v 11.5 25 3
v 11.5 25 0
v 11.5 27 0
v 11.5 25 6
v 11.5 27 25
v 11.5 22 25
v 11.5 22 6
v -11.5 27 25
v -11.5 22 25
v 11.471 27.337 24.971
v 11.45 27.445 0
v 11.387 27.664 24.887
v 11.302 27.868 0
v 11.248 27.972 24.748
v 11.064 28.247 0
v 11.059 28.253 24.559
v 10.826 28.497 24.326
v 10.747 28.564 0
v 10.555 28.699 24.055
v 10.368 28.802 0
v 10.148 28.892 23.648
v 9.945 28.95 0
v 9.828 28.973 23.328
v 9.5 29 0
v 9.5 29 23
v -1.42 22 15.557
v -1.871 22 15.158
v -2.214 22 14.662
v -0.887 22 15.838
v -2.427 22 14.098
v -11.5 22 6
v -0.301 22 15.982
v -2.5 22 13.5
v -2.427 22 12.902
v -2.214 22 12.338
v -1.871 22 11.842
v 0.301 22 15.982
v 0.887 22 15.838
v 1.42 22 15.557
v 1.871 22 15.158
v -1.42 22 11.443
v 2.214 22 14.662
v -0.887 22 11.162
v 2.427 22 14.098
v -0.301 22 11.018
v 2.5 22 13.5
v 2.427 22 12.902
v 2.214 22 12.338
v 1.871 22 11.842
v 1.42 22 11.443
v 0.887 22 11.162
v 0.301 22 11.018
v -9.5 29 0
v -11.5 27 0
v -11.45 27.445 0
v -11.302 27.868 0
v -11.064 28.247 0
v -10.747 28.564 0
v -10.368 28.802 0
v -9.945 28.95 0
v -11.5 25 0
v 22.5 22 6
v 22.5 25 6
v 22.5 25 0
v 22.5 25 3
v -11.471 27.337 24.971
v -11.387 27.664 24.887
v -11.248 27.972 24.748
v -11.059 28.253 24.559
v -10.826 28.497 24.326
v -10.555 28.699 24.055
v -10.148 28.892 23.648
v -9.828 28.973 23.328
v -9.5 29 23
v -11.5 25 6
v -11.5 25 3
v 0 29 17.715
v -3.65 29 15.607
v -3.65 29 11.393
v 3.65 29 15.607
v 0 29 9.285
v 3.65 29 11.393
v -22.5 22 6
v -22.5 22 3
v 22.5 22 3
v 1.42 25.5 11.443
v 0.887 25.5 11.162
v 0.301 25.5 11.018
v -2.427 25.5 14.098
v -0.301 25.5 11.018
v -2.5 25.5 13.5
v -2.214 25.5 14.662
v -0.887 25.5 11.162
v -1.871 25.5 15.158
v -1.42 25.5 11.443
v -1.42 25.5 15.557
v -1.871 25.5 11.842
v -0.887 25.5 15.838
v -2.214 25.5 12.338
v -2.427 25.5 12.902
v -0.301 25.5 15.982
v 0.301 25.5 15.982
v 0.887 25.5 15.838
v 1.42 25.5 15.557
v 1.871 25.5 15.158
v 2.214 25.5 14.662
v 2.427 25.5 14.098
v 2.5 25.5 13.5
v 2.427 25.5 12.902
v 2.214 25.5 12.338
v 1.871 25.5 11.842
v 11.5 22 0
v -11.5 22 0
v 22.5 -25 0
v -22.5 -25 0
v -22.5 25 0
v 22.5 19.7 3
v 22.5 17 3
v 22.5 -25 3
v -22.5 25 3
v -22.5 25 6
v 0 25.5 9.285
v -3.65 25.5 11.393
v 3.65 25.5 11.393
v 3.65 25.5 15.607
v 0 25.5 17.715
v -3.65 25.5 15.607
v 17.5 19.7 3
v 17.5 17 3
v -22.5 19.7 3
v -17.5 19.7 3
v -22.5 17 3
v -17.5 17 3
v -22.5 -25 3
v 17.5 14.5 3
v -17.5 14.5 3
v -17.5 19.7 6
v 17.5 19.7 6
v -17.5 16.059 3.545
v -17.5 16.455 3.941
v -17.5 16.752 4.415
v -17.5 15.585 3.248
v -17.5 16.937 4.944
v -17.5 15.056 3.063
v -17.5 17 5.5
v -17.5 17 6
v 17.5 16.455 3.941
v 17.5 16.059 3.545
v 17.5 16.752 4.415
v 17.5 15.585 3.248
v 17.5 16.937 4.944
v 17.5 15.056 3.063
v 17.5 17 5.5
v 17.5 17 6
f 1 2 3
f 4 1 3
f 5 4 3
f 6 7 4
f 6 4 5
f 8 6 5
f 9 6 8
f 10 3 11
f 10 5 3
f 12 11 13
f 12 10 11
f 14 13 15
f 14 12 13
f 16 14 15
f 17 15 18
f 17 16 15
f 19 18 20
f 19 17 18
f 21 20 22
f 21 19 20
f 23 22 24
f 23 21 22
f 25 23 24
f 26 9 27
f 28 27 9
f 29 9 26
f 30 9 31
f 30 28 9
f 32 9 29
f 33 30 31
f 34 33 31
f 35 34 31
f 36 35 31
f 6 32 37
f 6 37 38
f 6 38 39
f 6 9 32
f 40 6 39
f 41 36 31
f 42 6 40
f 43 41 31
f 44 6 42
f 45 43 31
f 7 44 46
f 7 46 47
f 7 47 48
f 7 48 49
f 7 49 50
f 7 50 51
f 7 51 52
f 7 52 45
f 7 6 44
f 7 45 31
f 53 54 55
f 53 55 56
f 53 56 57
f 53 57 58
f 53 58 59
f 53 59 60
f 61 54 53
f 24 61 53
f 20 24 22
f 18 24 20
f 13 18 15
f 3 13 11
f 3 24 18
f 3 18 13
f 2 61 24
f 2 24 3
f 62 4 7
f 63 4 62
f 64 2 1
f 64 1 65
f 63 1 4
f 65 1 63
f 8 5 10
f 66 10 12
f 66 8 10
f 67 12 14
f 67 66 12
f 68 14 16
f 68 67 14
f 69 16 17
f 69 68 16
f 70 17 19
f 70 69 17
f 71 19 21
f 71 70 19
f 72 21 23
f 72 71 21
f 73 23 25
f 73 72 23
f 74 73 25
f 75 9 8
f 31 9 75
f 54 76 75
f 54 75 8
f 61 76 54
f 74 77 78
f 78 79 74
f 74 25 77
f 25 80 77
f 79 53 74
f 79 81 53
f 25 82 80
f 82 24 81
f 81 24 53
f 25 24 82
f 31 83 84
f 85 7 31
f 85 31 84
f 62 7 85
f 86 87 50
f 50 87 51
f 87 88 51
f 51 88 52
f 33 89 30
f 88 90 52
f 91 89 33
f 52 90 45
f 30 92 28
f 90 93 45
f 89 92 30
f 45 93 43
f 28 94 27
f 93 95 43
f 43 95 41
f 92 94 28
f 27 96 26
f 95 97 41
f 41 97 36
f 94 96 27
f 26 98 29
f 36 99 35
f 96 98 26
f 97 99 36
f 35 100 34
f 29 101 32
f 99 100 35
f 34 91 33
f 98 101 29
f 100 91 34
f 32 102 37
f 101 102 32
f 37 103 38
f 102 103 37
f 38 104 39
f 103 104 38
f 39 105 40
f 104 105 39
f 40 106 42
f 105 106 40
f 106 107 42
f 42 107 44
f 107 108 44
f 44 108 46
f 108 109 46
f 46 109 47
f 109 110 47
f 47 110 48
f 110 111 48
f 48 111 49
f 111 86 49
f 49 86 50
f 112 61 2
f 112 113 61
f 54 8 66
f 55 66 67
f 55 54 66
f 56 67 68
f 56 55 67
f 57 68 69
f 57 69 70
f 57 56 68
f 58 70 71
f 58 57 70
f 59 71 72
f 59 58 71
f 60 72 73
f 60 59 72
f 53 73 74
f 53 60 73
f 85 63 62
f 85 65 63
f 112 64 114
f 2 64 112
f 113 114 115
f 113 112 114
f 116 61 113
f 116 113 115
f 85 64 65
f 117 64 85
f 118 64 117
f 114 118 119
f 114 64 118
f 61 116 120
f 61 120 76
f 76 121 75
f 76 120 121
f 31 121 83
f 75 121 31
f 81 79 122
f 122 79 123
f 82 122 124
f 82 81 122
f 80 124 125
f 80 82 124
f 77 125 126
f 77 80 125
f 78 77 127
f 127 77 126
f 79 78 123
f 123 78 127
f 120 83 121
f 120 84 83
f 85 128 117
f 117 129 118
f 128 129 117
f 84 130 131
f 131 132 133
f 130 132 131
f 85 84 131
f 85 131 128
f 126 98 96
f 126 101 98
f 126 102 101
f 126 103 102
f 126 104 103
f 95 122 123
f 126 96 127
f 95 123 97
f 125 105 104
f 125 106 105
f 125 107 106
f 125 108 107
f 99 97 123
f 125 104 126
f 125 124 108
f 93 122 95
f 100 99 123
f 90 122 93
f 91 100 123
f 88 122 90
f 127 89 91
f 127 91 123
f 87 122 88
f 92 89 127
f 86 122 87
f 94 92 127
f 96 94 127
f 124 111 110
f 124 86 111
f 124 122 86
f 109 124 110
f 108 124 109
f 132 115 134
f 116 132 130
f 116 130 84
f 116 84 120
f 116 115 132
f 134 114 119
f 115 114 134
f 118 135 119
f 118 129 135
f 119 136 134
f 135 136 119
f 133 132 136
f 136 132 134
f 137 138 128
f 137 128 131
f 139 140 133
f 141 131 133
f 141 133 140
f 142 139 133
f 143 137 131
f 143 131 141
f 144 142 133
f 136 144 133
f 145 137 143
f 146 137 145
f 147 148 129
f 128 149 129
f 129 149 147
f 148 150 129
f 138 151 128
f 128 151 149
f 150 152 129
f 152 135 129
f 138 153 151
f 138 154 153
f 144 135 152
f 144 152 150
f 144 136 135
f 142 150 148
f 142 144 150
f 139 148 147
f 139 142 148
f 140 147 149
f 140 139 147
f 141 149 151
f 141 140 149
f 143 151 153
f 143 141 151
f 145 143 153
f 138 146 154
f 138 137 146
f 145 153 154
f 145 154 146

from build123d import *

# Parameters (mm, degrees)
SKETCH_W        = 45
SKETCH_H        = 50
PAD_DEPTH       = 3
SKETCH001_W     = 23
SKETCH001_H     = 25
PAD001_DEPTH    = 7
SKETCH002_W     = 45
SKETCH002_H     = 8
PAD002_DEPTH    = 3
POCKET_DEPTH    = 3
POCKET001_DEPTH = 3.5
SKETCH005_R     = 2.5
POCKET002_DEPTH = 50.501
FILLET_R        = 2.5
FILLET001_R     = 2


with BuildPart() as part:
    # Sketch → Pad (new body)
    with BuildSketch(Plane.XY):
        Rectangle(SKETCH_W, SKETCH_H)
    extrude(amount=PAD_DEPTH)

    # Sketch001 (on DatumPlane) → Pad001 (join)
    with BuildSketch(Plane(origin=(0, 22, 0), x_dir=(-1, 0, 0), z_dir=(0, 1, 0))):
        with Locations((0, 12.5)):
            Rectangle(SKETCH001_W, SKETCH001_H)
    extrude(amount=PAD001_DEPTH)

    # Sketch002 (on Face5 of Pad001) → Pad002 (join)
    with BuildSketch(Plane.XY.offset(3)):
        with Locations((0, 21)):
            Rectangle(SKETCH002_W, SKETCH002_H)
    extrude(amount=PAD002_DEPTH)

    # Sketch003 (on Face14 of Pad002) → Pocket (cut)
    with BuildSketch(Plane.XY.offset(6)):
        Polygon((-22.5, 22), (22.5, 22), (22.5, 19.7), (22.5, 17), (17.5, 17), (17.5, 19.7), (-17.5, 19.7), (-17.5, 17), (-22.5, 17), (-22.5, 19.7), align=None)
    extrude(amount=-POCKET_DEPTH, mode=Mode.SUBTRACT)

    # Sketch004 (on Face27 of Pocket) → Pocket001 (cut)
    with BuildSketch(Plane(origin=(0, 29, 0), x_dir=(-1, 0, 0), z_dir=(0, 1, 0))):
        Polygon((3.65, 11.392672), (3.65, 15.607328), (0, 17.714657), (-3.65, 15.607328), (-3.65, 11.392672), (0, 9.285343), align=None)
    extrude(amount=-POCKET001_DEPTH, mode=Mode.SUBTRACT)

    # Sketch005 (on Face34 of Pocket001) → Pocket002 (cut, through all)
    with BuildSketch(Plane(origin=(0, 25.5, 0), x_dir=(-1, 0, 0), z_dir=(0, 1, 0))):
        with Locations((0, 13.5)):
            Circle(SKETCH005_R)
    extrude(amount=-POCKET002_DEPTH, mode=Mode.SUBTRACT)

    # Fillet
    fillet_edges = [part.edges().sort_by_distance(p)[0] for p in [
        (0, 17, 3),
    ]]
    fillet(fillet_edges, radius=FILLET_R)

    # Fillet001
    fillet001_edges = [part.edges().sort_by_distance(p)[0] for p in [
        (0, 29, 25),
        (11.5, 29, 12.5),
        (-11.5, 29, 12.5),
    ]]
    fillet(fillet001_edges, radius=FILLET001_R)


solid = part.part
